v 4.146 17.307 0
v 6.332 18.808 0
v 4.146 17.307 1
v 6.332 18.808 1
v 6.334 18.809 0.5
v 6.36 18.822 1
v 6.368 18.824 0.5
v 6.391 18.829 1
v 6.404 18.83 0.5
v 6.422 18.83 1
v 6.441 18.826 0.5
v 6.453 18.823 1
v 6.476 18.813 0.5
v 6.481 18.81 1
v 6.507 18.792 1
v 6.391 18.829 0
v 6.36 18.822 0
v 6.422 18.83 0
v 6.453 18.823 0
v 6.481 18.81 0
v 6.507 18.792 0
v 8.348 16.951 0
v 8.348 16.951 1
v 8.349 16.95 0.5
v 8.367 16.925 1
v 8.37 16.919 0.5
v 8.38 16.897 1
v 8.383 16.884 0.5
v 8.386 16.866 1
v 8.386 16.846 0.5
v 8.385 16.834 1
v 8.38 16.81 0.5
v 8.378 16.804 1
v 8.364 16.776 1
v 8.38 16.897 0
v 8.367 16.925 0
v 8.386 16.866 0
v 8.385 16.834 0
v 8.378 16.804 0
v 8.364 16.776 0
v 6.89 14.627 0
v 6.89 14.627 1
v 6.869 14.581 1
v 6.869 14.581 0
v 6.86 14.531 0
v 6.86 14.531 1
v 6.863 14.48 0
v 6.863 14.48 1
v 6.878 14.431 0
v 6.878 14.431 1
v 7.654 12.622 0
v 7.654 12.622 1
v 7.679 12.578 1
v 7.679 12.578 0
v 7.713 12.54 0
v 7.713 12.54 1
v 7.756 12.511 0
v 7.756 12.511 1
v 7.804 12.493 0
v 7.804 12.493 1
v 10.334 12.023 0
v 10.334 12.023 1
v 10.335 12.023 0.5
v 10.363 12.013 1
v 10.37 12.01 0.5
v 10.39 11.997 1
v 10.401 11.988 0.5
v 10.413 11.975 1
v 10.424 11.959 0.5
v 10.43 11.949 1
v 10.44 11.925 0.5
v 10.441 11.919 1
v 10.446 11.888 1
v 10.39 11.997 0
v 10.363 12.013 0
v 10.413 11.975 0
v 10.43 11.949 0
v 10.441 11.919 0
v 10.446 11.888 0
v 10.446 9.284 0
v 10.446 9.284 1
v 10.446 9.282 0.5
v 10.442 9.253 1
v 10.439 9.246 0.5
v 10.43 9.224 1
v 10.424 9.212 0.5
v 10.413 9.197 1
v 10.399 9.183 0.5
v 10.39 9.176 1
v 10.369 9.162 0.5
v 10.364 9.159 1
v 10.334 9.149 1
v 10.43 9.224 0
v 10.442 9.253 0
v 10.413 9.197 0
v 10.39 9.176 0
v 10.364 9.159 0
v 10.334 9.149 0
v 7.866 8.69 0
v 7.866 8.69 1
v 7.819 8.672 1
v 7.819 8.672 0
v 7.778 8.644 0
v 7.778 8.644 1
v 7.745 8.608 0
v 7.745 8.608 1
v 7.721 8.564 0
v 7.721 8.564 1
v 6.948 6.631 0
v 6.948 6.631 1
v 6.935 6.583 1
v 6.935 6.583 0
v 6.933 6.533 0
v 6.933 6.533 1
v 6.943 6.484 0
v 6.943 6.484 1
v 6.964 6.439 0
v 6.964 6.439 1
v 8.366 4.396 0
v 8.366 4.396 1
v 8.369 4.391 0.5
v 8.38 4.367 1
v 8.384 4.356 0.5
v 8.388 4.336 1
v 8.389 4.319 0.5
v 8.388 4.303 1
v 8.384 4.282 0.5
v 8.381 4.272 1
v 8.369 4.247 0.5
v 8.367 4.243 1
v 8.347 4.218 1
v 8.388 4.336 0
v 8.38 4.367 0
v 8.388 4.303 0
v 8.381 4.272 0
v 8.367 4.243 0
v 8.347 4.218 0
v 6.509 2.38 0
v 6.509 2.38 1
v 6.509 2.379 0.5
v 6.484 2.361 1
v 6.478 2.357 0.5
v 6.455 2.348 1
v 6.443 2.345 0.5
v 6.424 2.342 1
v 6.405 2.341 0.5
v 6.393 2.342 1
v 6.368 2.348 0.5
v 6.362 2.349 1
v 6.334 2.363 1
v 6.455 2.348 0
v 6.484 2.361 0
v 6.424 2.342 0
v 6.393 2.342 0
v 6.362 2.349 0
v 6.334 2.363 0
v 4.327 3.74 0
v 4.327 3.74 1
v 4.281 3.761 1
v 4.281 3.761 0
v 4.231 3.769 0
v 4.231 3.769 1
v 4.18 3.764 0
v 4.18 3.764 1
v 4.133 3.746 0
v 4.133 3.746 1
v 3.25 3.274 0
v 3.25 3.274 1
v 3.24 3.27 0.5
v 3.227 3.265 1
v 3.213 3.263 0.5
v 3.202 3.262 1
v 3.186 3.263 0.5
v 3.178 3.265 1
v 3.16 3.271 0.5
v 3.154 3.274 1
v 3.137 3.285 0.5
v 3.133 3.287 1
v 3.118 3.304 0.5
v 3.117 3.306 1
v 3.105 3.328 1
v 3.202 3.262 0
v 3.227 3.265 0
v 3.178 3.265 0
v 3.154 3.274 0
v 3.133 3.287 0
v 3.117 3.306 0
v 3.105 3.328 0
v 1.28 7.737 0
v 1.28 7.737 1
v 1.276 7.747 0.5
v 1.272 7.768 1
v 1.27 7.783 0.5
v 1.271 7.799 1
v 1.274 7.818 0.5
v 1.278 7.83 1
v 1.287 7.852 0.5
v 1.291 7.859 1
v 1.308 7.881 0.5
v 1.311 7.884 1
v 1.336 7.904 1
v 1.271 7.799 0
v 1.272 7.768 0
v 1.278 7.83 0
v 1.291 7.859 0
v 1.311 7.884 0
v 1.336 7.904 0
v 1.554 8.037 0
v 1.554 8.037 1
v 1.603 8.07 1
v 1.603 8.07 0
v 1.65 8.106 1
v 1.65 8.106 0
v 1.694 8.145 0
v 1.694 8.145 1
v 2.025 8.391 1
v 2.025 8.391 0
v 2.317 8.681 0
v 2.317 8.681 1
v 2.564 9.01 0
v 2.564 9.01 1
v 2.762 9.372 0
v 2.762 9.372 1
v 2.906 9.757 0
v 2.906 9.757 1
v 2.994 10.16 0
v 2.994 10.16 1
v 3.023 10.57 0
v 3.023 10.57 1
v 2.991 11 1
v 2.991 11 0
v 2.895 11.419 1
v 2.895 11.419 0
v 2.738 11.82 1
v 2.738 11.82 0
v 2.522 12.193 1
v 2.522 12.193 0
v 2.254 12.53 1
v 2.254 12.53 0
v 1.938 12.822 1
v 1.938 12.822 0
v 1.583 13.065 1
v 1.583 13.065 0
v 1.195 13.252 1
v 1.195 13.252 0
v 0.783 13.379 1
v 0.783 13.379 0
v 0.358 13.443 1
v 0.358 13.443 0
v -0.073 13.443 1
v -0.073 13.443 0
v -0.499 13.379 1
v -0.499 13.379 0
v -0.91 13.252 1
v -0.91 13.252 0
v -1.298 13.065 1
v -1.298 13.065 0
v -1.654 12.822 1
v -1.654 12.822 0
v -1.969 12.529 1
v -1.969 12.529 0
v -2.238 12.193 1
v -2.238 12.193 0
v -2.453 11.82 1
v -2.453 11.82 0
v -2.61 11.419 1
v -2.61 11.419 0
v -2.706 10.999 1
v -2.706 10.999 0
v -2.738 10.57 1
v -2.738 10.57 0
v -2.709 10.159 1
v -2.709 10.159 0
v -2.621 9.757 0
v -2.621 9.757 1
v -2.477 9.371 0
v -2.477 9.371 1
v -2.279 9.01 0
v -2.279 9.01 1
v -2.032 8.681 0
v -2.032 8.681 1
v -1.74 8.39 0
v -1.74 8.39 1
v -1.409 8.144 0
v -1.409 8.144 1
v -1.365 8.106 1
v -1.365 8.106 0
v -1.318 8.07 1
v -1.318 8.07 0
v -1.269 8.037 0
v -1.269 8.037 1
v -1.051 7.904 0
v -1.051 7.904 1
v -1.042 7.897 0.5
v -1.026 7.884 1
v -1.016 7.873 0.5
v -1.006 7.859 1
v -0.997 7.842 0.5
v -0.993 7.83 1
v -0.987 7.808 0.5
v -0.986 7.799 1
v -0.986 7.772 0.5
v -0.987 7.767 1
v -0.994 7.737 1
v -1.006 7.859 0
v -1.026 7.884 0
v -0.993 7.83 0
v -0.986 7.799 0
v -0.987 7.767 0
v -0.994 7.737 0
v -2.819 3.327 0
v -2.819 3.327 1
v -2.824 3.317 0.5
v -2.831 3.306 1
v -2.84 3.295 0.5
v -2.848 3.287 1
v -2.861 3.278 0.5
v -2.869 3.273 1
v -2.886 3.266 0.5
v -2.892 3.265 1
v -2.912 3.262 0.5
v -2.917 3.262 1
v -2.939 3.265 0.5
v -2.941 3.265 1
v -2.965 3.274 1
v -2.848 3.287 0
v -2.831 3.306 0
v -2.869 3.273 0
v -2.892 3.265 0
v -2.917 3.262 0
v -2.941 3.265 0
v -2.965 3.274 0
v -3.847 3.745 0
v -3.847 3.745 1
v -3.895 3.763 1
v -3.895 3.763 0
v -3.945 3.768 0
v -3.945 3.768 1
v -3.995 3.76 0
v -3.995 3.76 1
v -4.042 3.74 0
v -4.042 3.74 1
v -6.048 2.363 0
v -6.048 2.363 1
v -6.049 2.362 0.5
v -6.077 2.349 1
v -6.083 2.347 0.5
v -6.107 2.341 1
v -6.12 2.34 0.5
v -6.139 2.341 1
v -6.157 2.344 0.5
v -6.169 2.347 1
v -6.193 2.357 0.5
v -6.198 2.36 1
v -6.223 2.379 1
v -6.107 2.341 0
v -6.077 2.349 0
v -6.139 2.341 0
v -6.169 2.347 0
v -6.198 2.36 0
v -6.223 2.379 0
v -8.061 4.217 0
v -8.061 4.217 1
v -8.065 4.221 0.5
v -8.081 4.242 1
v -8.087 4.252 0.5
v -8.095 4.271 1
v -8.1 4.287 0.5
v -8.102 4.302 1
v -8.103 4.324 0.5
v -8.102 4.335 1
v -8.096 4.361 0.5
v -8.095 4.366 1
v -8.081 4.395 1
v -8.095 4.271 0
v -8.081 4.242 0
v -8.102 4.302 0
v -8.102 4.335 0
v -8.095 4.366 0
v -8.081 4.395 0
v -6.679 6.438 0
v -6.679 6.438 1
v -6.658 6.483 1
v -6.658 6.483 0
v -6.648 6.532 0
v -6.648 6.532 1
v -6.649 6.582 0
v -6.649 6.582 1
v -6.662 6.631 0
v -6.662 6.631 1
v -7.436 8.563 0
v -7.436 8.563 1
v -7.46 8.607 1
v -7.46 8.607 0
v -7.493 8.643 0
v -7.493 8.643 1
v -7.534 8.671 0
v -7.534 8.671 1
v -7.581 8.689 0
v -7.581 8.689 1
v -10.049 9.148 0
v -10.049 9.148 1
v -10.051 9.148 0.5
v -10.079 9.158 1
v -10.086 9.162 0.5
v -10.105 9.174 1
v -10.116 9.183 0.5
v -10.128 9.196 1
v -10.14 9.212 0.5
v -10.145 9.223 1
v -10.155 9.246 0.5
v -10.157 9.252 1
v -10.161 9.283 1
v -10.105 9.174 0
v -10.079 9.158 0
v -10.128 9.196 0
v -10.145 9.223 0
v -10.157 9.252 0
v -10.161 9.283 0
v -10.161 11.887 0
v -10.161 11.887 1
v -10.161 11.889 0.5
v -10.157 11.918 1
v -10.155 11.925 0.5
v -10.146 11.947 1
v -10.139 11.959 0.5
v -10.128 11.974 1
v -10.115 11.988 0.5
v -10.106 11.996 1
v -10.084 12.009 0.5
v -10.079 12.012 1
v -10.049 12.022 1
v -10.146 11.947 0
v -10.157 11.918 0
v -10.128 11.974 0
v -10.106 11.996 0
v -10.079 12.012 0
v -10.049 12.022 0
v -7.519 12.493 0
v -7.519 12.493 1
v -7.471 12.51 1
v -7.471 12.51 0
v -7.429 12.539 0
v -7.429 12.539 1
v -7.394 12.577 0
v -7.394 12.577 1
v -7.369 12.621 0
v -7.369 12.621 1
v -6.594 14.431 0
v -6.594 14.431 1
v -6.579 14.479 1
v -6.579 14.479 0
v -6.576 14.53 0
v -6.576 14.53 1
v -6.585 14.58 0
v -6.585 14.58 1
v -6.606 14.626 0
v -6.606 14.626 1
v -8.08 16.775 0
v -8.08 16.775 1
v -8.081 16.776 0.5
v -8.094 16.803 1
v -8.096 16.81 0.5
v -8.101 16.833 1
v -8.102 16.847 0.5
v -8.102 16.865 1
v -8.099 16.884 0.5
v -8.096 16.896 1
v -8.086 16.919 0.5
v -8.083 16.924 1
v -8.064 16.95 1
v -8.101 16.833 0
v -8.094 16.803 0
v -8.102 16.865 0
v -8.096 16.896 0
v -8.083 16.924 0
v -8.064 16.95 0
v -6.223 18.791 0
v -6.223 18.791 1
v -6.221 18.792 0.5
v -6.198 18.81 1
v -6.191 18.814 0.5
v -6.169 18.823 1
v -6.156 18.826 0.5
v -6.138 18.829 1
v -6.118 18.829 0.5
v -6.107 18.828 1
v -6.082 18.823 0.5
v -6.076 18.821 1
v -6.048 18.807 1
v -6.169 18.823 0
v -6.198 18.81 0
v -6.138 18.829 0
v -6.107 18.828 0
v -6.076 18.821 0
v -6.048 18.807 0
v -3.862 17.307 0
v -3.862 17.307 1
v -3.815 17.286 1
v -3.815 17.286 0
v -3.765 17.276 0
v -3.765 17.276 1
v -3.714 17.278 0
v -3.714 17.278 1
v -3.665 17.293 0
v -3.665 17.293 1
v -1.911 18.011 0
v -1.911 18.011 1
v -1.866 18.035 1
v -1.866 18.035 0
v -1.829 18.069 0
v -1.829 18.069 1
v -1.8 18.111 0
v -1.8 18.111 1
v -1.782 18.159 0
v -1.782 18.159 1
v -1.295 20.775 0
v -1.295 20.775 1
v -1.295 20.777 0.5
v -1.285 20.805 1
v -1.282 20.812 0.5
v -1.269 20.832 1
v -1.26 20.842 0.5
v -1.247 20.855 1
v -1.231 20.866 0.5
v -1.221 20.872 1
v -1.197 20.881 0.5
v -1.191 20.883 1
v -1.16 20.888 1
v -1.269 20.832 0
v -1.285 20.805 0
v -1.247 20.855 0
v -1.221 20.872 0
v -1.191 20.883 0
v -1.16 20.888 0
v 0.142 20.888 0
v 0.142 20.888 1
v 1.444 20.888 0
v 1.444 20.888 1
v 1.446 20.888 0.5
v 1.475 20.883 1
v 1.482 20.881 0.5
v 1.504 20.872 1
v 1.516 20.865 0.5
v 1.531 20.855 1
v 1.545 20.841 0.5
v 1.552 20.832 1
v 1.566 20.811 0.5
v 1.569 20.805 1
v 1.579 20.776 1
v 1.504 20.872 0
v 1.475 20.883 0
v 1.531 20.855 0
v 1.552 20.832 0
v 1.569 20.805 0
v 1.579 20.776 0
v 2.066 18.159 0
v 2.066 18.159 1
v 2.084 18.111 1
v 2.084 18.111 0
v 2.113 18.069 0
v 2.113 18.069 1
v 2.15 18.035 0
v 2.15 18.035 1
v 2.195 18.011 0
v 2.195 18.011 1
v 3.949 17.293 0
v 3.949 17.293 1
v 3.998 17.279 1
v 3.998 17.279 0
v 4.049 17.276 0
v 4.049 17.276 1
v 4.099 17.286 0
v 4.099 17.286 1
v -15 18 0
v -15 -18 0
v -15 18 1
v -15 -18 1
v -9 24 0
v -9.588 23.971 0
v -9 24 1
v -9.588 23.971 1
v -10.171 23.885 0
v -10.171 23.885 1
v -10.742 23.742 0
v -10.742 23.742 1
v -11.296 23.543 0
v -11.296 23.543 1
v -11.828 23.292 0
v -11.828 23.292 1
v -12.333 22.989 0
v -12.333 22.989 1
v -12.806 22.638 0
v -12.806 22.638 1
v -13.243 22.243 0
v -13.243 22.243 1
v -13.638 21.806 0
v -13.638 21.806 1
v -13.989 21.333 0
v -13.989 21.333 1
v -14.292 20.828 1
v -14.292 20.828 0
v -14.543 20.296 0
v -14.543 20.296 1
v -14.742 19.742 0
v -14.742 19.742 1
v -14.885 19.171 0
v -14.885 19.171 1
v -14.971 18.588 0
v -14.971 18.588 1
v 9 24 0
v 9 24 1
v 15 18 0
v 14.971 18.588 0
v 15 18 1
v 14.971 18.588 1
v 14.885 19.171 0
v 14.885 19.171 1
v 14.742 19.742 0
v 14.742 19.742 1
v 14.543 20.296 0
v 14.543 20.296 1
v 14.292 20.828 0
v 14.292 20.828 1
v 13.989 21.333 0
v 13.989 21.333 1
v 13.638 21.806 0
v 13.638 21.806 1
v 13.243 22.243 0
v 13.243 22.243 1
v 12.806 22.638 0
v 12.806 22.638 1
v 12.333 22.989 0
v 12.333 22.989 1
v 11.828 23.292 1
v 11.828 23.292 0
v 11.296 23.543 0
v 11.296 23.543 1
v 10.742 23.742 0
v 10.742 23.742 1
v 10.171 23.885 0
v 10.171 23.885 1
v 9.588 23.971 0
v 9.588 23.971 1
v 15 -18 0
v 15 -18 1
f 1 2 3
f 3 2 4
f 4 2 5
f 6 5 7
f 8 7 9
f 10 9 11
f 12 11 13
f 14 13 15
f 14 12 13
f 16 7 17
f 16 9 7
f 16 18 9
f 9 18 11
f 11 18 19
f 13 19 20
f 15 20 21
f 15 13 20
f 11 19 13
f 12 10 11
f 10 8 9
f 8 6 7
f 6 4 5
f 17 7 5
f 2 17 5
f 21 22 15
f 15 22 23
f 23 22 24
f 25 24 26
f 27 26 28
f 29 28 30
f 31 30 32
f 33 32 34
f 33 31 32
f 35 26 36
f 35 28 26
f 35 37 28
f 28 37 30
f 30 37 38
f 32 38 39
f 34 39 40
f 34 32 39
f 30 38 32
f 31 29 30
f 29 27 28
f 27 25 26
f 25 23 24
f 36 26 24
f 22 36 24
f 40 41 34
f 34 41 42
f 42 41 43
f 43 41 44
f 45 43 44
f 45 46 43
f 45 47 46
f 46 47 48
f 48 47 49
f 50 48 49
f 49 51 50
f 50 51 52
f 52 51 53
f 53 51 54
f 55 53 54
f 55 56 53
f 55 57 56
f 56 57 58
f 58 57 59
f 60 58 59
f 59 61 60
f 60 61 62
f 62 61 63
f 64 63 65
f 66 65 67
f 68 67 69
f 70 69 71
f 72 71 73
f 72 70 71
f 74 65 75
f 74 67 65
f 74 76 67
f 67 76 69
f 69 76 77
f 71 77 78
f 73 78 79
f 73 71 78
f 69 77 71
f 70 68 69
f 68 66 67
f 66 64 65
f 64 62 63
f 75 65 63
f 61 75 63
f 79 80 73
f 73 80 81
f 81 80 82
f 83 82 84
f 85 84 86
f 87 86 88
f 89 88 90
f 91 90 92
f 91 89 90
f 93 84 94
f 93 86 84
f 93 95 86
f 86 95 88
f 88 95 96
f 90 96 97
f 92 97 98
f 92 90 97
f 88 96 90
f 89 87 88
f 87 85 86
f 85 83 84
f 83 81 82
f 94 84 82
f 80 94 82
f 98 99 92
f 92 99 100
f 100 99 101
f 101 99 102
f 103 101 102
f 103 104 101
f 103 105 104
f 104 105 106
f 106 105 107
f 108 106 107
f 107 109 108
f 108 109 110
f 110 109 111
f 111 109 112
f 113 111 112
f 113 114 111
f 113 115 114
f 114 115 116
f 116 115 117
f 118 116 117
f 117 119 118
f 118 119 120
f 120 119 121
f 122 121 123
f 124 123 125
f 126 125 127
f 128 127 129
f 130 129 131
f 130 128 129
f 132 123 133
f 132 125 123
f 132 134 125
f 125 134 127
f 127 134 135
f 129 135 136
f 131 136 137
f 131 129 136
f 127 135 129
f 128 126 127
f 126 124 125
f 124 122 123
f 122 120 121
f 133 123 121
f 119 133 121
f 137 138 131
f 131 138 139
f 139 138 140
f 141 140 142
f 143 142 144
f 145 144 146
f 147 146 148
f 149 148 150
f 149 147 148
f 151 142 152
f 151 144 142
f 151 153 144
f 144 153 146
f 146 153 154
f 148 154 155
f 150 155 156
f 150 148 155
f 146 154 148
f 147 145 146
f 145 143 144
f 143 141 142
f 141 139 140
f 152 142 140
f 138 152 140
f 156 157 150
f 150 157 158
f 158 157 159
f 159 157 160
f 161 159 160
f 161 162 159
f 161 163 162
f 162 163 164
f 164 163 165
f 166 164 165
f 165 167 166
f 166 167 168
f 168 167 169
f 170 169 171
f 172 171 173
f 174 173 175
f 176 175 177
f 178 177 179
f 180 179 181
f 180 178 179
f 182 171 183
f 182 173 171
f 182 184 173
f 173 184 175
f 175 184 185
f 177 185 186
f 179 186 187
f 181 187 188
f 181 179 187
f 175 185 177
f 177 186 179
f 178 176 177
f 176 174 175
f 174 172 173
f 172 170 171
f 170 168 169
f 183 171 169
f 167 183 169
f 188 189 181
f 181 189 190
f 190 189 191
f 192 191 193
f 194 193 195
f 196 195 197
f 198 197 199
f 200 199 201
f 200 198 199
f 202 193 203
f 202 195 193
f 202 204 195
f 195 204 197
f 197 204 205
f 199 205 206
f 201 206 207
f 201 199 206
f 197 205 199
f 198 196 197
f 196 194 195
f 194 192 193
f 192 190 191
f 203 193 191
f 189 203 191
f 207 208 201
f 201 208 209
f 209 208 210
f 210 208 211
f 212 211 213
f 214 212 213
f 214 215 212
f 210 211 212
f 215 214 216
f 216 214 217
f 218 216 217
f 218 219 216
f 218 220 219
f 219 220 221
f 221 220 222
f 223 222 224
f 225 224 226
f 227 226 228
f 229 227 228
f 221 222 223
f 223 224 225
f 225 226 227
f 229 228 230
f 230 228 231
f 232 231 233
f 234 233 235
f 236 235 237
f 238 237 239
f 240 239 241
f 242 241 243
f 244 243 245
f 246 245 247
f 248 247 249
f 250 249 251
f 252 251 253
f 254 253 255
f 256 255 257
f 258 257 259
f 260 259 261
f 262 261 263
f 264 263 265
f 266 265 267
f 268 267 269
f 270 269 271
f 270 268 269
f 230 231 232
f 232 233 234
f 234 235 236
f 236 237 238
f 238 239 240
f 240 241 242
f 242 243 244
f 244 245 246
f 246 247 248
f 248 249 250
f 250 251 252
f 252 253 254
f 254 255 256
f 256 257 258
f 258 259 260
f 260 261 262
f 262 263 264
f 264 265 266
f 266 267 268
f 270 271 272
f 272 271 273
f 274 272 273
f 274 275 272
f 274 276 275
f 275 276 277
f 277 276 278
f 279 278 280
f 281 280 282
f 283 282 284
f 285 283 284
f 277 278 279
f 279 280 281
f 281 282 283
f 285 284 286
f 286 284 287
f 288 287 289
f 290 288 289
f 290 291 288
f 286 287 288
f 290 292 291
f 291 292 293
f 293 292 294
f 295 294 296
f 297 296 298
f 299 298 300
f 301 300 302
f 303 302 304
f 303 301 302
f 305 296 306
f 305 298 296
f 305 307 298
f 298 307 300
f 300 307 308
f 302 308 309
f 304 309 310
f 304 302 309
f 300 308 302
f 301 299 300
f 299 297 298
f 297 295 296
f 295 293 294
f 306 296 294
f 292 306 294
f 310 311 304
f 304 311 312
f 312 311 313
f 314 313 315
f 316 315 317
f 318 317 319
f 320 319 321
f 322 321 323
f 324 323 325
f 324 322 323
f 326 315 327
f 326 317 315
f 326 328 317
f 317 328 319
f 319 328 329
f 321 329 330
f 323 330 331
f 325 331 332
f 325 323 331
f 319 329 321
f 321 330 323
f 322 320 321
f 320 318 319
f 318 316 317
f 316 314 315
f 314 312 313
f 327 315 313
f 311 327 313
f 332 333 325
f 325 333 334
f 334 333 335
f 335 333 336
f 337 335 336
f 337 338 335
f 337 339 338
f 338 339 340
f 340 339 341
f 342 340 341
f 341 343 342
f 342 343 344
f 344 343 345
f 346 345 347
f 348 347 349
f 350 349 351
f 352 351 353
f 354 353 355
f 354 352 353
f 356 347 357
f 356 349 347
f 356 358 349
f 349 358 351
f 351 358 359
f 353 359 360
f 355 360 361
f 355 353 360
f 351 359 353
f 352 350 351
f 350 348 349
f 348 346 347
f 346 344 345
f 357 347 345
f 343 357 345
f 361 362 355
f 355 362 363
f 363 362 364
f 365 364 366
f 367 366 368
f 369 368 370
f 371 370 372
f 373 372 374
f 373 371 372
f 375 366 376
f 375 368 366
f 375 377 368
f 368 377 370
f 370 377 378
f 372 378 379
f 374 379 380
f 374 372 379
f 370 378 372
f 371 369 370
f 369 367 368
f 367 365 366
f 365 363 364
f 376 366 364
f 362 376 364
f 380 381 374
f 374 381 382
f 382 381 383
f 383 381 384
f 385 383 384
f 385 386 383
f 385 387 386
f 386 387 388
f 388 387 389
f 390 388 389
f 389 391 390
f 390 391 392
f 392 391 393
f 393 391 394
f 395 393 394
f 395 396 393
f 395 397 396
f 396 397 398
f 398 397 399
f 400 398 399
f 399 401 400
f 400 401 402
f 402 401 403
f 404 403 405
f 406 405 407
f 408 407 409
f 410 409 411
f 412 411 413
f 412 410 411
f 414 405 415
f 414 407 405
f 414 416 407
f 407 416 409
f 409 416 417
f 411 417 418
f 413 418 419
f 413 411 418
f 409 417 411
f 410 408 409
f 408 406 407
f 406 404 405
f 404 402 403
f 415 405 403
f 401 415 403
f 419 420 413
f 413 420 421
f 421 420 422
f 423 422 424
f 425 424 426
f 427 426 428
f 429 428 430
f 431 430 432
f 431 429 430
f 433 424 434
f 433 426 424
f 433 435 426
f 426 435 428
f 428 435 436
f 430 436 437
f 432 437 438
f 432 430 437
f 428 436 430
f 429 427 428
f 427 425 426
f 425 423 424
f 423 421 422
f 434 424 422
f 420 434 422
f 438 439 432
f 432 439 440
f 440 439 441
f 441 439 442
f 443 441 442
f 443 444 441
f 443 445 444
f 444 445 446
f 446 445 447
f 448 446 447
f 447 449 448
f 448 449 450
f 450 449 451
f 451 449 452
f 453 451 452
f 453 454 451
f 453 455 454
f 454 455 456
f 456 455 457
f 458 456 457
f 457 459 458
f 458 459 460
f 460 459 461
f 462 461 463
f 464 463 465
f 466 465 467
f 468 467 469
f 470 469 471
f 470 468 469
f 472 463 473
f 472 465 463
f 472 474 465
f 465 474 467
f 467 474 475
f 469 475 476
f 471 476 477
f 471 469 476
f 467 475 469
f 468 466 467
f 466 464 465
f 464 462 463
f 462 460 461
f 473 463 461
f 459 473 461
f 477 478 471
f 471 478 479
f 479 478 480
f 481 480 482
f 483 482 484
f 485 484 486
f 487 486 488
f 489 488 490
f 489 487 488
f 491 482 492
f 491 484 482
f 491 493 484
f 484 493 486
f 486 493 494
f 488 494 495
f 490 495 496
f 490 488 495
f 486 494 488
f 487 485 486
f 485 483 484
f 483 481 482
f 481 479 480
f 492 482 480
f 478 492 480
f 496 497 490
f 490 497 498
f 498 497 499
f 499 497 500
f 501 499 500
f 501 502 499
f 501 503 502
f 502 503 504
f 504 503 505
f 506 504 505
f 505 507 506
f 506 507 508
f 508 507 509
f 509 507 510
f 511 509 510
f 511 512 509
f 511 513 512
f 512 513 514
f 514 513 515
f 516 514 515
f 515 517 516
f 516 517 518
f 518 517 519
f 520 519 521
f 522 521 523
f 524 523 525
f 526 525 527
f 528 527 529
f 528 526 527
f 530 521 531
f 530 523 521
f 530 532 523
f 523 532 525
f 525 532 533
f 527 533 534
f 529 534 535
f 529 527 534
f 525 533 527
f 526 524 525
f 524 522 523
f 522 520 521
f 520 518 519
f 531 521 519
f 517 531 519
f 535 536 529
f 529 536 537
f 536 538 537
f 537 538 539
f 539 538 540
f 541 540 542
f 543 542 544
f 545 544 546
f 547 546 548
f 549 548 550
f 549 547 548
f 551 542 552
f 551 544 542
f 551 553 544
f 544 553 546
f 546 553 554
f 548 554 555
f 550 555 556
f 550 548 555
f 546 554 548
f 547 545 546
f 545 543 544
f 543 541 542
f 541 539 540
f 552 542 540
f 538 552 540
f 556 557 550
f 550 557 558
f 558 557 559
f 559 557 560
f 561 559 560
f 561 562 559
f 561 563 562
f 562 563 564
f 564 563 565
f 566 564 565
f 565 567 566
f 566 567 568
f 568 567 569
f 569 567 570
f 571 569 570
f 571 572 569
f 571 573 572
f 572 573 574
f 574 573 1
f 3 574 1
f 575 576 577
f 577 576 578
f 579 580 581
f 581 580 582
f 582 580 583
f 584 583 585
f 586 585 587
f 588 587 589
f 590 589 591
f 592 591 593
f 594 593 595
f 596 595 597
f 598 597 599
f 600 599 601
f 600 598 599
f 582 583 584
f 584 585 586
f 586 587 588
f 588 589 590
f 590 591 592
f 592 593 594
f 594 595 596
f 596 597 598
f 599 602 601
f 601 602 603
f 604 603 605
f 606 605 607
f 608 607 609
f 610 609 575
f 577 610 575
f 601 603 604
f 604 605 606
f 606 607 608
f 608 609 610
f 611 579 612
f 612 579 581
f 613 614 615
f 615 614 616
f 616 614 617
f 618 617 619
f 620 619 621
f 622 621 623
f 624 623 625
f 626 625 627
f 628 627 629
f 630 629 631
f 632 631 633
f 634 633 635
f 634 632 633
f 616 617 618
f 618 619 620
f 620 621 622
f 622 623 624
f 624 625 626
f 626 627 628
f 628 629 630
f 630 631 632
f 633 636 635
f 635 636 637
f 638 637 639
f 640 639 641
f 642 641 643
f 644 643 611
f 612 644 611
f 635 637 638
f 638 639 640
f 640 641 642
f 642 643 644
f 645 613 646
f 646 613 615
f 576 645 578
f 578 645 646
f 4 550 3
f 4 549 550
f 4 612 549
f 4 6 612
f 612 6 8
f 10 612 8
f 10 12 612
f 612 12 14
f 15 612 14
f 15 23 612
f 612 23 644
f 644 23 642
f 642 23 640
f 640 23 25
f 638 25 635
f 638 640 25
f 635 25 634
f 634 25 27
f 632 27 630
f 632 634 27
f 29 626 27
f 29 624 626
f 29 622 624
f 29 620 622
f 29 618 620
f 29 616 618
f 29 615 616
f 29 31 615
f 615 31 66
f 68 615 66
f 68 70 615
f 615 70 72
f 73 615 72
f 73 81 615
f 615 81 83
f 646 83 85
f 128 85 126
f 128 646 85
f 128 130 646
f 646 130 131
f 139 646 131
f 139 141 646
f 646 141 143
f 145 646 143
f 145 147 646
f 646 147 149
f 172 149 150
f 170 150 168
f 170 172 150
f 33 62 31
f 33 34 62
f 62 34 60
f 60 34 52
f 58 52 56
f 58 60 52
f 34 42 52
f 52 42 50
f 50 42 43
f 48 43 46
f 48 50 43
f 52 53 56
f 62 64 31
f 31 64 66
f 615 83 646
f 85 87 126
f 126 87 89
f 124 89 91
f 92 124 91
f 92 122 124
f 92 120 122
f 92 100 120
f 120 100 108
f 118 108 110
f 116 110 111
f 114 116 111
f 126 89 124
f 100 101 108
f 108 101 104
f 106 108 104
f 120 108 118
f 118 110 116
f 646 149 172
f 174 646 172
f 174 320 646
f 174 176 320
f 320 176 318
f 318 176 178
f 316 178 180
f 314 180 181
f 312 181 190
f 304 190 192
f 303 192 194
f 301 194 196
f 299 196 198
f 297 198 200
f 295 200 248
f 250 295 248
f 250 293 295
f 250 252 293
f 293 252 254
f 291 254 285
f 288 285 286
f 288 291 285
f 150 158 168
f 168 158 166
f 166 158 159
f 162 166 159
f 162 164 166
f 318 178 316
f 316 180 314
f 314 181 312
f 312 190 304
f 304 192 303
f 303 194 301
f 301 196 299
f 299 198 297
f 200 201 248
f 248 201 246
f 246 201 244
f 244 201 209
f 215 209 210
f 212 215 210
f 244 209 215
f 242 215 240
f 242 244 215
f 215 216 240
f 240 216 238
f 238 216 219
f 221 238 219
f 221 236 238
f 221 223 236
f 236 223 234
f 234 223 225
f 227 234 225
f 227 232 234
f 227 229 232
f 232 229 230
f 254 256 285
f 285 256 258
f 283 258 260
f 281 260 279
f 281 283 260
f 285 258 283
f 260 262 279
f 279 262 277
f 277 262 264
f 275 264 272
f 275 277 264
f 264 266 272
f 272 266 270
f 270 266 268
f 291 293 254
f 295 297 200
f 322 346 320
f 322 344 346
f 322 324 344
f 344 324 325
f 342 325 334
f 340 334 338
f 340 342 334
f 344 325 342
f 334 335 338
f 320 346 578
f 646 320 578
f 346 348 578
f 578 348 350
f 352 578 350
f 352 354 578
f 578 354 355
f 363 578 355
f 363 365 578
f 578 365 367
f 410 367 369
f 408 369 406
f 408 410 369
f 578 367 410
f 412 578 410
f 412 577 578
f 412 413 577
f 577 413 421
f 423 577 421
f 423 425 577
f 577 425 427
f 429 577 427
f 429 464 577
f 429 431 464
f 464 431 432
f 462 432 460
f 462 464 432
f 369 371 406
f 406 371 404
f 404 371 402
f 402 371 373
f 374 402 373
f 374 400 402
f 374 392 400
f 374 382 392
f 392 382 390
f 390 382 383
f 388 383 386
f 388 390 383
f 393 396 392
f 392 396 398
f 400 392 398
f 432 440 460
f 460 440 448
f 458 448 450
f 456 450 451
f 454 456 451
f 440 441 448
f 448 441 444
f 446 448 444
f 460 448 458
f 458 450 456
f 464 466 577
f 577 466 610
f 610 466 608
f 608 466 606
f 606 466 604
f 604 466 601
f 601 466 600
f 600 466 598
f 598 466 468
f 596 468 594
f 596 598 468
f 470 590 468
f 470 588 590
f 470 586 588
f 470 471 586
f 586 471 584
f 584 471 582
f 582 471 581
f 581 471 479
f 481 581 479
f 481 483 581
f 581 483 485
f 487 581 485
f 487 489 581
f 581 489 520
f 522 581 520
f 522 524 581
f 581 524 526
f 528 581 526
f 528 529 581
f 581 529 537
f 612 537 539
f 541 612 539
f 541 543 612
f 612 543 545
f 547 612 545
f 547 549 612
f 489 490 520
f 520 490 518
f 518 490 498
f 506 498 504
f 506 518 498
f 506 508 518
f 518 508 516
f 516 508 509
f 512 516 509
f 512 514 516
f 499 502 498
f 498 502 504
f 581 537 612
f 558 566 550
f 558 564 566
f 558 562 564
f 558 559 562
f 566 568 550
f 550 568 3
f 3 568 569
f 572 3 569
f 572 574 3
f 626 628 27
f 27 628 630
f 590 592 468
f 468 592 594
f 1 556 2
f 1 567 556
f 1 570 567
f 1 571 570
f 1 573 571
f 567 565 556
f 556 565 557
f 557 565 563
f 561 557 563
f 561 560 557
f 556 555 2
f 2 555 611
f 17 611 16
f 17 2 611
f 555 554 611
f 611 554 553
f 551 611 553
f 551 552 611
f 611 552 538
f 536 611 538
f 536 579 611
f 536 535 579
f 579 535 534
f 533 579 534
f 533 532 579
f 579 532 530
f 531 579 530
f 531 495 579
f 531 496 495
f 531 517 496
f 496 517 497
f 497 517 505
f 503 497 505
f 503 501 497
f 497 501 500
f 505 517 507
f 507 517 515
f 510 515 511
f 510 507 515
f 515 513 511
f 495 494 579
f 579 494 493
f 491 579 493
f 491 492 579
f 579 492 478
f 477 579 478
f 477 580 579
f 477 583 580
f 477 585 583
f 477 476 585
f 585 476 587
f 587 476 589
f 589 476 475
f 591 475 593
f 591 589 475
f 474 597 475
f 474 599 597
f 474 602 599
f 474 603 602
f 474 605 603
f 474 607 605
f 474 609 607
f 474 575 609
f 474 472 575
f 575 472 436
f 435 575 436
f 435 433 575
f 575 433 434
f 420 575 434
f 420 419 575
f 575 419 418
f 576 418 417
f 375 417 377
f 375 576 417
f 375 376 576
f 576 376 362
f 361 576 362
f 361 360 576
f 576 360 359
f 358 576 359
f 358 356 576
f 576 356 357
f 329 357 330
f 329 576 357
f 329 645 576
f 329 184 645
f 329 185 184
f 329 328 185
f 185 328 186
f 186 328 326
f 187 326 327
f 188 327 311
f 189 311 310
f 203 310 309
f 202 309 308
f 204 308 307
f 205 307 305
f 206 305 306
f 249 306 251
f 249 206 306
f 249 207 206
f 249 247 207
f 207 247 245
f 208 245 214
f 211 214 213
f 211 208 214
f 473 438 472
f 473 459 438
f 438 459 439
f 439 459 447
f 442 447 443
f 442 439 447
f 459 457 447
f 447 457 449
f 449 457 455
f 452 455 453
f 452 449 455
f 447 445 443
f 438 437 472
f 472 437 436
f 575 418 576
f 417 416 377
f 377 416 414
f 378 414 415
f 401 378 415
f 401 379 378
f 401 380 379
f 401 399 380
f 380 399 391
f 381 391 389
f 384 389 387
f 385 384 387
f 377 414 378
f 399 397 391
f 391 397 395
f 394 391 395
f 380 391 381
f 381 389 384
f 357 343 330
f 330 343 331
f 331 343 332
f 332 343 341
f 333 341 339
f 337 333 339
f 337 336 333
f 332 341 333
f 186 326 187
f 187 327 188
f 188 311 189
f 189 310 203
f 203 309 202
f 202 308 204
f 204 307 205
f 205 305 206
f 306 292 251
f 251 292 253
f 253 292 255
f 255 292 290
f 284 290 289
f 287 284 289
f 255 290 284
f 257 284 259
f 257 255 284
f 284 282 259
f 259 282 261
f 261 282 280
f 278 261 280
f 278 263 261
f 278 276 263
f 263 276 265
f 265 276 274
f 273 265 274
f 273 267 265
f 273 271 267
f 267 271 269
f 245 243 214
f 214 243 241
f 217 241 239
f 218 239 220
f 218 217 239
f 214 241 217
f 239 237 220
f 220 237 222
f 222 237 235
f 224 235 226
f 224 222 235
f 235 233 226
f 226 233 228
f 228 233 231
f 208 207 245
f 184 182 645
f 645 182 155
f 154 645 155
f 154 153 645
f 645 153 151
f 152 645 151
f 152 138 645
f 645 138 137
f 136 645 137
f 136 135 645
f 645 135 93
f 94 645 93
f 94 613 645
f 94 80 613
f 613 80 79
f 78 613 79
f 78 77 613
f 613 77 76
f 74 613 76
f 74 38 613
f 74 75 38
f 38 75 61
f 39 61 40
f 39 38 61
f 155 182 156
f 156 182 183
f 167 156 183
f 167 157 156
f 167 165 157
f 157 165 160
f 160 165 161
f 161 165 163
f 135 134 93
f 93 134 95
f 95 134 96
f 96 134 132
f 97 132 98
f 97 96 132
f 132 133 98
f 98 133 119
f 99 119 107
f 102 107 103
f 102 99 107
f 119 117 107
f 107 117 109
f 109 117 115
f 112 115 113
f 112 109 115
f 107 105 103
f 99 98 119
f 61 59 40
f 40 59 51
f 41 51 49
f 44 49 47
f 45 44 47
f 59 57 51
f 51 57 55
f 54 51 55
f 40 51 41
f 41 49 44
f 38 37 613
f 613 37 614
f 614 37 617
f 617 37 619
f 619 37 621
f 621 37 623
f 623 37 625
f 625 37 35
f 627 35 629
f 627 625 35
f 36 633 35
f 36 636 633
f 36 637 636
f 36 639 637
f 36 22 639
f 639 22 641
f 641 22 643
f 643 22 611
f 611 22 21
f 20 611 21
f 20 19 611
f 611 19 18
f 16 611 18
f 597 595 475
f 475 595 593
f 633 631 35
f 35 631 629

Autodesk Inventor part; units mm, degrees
ref_plane "YZ Plane" through (0, 0, 0) normal (1, 0, 0) x (0, 1, 0)
ref_plane "XZ Plane" through (0, 0, 0) normal (0, 1, 0) x (-1, 0, 0)
ref_plane "XY Plane" through (0, 0, 0) normal (0, 0, 1) x (1, 0, 0)
sketch "Sketch1" plane through (0, 0, 0) normal (0, 0, 1) x (1, 0, 0)
  line L0 (-15, -18) -> (15, -18)
  line L1 (15, -18) -> (15, 18)
  line L2 (9, 24) -> (-9, 24)
  line L3 (-15, 18) -> (-15, -18)
  arc A0 (-9, 24) -> (-15, 18) centre (-9, 18) ccw
  arc A1 (15, 18) -> (9, 24) centre (9, 18) ccw
  point P0 (0, 0)
  point P1 (15, 24)
  point P2 (-15, 24)
  point P3 (15, 0)
  point P4 (0, 24)
  dimension "d0" = 30
  dimension "d1" = 42
  dimension "d2" = 6
extrude "Extrusion1" add sketch "Sketch1" along normal blind 1
sketch "Sketch2" plane through (0, 0, 0) normal (0, 0, 1) x (1, 0, 0)
  arc A0 (-3.8619, 17.3067) -> (-3.6654, 17.2925) centre (-3.7499, 17.4911) ccw
  line L0 (-3.6654, 17.2925) -> (-1.9114, 18.0105)
  arc A1 (-1.9114, 18.0105) -> (-1.782, 18.1586) centre (-1.9892, 18.209) ccw
  line L1 (-1.782, 18.1586) -> (-1.2951, 20.7754)
  arc A2 (-1.1603, 20.8876) -> (-1.2951, 20.7754) centre (-1.1555, 20.7447) ccw
  line L2 (-1.1603, 20.8876) -> (0.1418, 20.8876)
  arc A3 (3.0232, 10.5703) -> (-2.7384, 10.57) centre (0.1424, 10.5701) ccw
  arc A4 (-2.7384, 10.57) -> (-1.4094, 8.1444) centre (0.1397, 10.5701) ccw
  arc A5 (-1.4094, 8.1444) -> (-1.2693, 8.0371) centre (-0.717, 8.9031) ccw
  line L3 (-1.2693, 8.0371) -> (-1.0511, 7.9035)
  line L4 (-0.9944, 7.7366) -> (-2.8191, 3.3275)
  arc A6 (-2.9648, 3.2741) -> (-2.8191, 3.3275) centre (-2.9158, 3.3658) ccw
  line L5 (-2.9648, 3.2741) -> (-3.8472, 3.7453)
  arc A7 (-3.8472, 3.7453) -> (-4.0418, 3.7399) centre (-3.9398, 3.572) ccw
  line L6 (-4.0418, 3.7399) -> (-6.0484, 2.3626)
  arc A8 (-6.2232, 2.3788) -> (-6.0484, 2.3626) centre (-6.1253, 2.4841) ccw
  line L7 (-6.2232, 2.3788) -> (-8.061, 4.2166)
  arc A9 (-8.0807, 4.3951) -> (-8.061, 4.2166) centre (-7.9596, 4.3181) ccw
  line L8 (-8.0807, 4.3951) -> (-6.6787, 6.4378)
  arc A10 (-6.6787, 6.4378) -> (-6.6624, 6.6306) centre (-6.8628, 6.5504) ccw
  line L9 (-6.6624, 6.6306) -> (-7.436, 8.5631)
  arc A11 (-7.436, 8.5631) -> (-7.581, 8.6886) centre (-7.6302, 8.4854) ccw
  line L10 (-7.581, 8.6886) -> (-10.0488, 9.1479)
  arc A12 (-10.161, 9.2831) -> (-10.0488, 9.1479) centre (-10.0181, 9.2876) ccw
  line L11 (-10.161, 9.2831) -> (-10.1612, 11.8869)
  arc A13 (-10.049, 12.0221) -> (-10.1612, 11.8869) centre (-10.018, 11.8822) ccw
  line L12 (-10.049, 12.0221) -> (-7.5191, 12.4926)
  arc A14 (-7.5191, 12.4926) -> (-7.3693, 12.6214) centre (-7.5703, 12.7036) ccw
  line L13 (-7.3693, 12.6214) -> (-6.5937, 14.4306)
  arc A15 (-6.5937, 14.4306) -> (-6.6058, 14.6262) centre (-6.7865, 14.5168) ccw
  line L14 (-6.6058, 14.6262) -> (-8.0801, 16.7747)
  arc A16 (-8.0639, 16.9496) -> (-8.0801, 16.7747) centre (-7.9592, 16.8517) ccw
  line L15 (-8.0639, 16.9496) -> (-6.2228, 18.7908)
  arc A17 (-6.048, 18.8069) -> (-6.2228, 18.7908) centre (-6.125, 18.6867) ccw
  line L16 (-6.048, 18.8069) -> (-3.8619, 17.3067)
  arc A18 (-0.9944, 7.7366) -> (-1.0511, 7.9035) centre (-1.1231, 7.786) ccw
  line L17 (0.1418, 20.8876) -> (0.1429, 2.0479) construction
  arc A19 (2.0659, 18.1588) -> (2.1953, 18.0107) centre (2.2731, 18.2093) ccw
  line L18 (2.0659, 18.1588) -> (1.5788, 20.7755)
  arc A20 (1.6945, 8.1446) -> (3.0232, 10.5703) centre (0.145, 10.5701) ccw
  arc A21 (1.5544, 8.0373) -> (1.6945, 8.1446) centre (1.002, 8.9032) ccw
  line L19 (1.5544, 8.0373) -> (1.3362, 7.9037)
  line L20 (1.2795, 7.7367) -> (3.1047, 3.3278)
  line L21 (8.3662, 4.3961) -> (6.964, 6.4386)
  arc A22 (8.3466, 4.2175) -> (8.3662, 4.3961) centre (8.2451, 4.319) ccw
  arc A23 (4.3274, 3.7404) -> (4.1328, 3.7458) centre (4.2254, 3.5724) ccw
  line L22 (3.2504, 3.2745) -> (4.1328, 3.7458)
  arc A24 (3.1047, 3.3278) -> (3.2504, 3.2745) centre (3.2014, 3.3662) ccw
  line L23 (4.3274, 3.7404) -> (6.3342, 2.3633)
  arc A25 (6.3342, 2.3633) -> (6.509, 2.3795) centre (6.411, 2.4848) ccw
  line L24 (6.509, 2.3795) -> (8.3466, 4.2175)
  line L25 (10.3336, 12.0232) -> (7.8037, 12.4935)
  arc A26 (10.4458, 11.8881) -> (10.3336, 12.0232) centre (10.3027, 11.8834) ccw
  arc A27 (7.866, 8.6895) -> (7.7211, 8.564) centre (7.9152, 8.4863) ccw
  arc A28 (10.3338, 9.1491) -> (10.446, 9.2843) centre (10.3031, 9.2887) ccw
  line L26 (7.866, 8.6895) -> (10.3338, 9.1491)
  line L27 (6.9477, 6.6314) -> (7.7211, 8.564)
  arc A29 (6.9477, 6.6314) -> (6.964, 6.4386) centre (7.148, 6.5512) ccw
  line L28 (10.446, 9.2843) -> (10.4458, 11.8881)
  arc A30 (3.9494, 17.293) -> (4.1459, 17.3071) centre (4.0339, 17.4915) ccw
  line L29 (3.9494, 17.293) -> (2.1953, 18.0107)
  arc A31 (7.6539, 12.6222) -> (7.8037, 12.4935) centre (7.8549, 12.7045) ccw
  line L30 (7.6539, 12.6222) -> (6.878, 14.4314)
  arc A32 (6.8902, 14.627) -> (6.878, 14.4314) centre (7.0708, 14.5176) ccw
  line L31 (6.8902, 14.627) -> (8.3642, 16.7757)
  arc A33 (8.3642, 16.7757) -> (8.348, 16.9506) centre (8.2433, 16.8527) ccw
  line L32 (1.4439, 20.8877) -> (0.1418, 20.8876)
  arc A34 (1.5788, 20.7755) -> (1.4439, 20.8877) centre (1.4392, 20.7449) ccw
  line L33 (6.3318, 18.8076) -> (4.1459, 17.3071)
  arc A35 (1.3362, 7.9037) -> (1.2795, 7.7367) centre (1.4082, 7.7861) ccw
  line L34 (8.348, 16.9506) -> (6.5066, 18.7915)
  arc A36 (6.5066, 18.7915) -> (6.3318, 18.8076) centre (6.4089, 18.6874) ccw
  point P0 (0, 0)
  point P1 (0.145, 10.5701)
  point P2 (0.145, 10.5701)
  point P3 (0.145, 10.5701)
  dimension "d5" = 18.525
extrude "Extrusion2" cut sketch "Sketch2" along normal blind 1
properties part number "VerticalPiece"
